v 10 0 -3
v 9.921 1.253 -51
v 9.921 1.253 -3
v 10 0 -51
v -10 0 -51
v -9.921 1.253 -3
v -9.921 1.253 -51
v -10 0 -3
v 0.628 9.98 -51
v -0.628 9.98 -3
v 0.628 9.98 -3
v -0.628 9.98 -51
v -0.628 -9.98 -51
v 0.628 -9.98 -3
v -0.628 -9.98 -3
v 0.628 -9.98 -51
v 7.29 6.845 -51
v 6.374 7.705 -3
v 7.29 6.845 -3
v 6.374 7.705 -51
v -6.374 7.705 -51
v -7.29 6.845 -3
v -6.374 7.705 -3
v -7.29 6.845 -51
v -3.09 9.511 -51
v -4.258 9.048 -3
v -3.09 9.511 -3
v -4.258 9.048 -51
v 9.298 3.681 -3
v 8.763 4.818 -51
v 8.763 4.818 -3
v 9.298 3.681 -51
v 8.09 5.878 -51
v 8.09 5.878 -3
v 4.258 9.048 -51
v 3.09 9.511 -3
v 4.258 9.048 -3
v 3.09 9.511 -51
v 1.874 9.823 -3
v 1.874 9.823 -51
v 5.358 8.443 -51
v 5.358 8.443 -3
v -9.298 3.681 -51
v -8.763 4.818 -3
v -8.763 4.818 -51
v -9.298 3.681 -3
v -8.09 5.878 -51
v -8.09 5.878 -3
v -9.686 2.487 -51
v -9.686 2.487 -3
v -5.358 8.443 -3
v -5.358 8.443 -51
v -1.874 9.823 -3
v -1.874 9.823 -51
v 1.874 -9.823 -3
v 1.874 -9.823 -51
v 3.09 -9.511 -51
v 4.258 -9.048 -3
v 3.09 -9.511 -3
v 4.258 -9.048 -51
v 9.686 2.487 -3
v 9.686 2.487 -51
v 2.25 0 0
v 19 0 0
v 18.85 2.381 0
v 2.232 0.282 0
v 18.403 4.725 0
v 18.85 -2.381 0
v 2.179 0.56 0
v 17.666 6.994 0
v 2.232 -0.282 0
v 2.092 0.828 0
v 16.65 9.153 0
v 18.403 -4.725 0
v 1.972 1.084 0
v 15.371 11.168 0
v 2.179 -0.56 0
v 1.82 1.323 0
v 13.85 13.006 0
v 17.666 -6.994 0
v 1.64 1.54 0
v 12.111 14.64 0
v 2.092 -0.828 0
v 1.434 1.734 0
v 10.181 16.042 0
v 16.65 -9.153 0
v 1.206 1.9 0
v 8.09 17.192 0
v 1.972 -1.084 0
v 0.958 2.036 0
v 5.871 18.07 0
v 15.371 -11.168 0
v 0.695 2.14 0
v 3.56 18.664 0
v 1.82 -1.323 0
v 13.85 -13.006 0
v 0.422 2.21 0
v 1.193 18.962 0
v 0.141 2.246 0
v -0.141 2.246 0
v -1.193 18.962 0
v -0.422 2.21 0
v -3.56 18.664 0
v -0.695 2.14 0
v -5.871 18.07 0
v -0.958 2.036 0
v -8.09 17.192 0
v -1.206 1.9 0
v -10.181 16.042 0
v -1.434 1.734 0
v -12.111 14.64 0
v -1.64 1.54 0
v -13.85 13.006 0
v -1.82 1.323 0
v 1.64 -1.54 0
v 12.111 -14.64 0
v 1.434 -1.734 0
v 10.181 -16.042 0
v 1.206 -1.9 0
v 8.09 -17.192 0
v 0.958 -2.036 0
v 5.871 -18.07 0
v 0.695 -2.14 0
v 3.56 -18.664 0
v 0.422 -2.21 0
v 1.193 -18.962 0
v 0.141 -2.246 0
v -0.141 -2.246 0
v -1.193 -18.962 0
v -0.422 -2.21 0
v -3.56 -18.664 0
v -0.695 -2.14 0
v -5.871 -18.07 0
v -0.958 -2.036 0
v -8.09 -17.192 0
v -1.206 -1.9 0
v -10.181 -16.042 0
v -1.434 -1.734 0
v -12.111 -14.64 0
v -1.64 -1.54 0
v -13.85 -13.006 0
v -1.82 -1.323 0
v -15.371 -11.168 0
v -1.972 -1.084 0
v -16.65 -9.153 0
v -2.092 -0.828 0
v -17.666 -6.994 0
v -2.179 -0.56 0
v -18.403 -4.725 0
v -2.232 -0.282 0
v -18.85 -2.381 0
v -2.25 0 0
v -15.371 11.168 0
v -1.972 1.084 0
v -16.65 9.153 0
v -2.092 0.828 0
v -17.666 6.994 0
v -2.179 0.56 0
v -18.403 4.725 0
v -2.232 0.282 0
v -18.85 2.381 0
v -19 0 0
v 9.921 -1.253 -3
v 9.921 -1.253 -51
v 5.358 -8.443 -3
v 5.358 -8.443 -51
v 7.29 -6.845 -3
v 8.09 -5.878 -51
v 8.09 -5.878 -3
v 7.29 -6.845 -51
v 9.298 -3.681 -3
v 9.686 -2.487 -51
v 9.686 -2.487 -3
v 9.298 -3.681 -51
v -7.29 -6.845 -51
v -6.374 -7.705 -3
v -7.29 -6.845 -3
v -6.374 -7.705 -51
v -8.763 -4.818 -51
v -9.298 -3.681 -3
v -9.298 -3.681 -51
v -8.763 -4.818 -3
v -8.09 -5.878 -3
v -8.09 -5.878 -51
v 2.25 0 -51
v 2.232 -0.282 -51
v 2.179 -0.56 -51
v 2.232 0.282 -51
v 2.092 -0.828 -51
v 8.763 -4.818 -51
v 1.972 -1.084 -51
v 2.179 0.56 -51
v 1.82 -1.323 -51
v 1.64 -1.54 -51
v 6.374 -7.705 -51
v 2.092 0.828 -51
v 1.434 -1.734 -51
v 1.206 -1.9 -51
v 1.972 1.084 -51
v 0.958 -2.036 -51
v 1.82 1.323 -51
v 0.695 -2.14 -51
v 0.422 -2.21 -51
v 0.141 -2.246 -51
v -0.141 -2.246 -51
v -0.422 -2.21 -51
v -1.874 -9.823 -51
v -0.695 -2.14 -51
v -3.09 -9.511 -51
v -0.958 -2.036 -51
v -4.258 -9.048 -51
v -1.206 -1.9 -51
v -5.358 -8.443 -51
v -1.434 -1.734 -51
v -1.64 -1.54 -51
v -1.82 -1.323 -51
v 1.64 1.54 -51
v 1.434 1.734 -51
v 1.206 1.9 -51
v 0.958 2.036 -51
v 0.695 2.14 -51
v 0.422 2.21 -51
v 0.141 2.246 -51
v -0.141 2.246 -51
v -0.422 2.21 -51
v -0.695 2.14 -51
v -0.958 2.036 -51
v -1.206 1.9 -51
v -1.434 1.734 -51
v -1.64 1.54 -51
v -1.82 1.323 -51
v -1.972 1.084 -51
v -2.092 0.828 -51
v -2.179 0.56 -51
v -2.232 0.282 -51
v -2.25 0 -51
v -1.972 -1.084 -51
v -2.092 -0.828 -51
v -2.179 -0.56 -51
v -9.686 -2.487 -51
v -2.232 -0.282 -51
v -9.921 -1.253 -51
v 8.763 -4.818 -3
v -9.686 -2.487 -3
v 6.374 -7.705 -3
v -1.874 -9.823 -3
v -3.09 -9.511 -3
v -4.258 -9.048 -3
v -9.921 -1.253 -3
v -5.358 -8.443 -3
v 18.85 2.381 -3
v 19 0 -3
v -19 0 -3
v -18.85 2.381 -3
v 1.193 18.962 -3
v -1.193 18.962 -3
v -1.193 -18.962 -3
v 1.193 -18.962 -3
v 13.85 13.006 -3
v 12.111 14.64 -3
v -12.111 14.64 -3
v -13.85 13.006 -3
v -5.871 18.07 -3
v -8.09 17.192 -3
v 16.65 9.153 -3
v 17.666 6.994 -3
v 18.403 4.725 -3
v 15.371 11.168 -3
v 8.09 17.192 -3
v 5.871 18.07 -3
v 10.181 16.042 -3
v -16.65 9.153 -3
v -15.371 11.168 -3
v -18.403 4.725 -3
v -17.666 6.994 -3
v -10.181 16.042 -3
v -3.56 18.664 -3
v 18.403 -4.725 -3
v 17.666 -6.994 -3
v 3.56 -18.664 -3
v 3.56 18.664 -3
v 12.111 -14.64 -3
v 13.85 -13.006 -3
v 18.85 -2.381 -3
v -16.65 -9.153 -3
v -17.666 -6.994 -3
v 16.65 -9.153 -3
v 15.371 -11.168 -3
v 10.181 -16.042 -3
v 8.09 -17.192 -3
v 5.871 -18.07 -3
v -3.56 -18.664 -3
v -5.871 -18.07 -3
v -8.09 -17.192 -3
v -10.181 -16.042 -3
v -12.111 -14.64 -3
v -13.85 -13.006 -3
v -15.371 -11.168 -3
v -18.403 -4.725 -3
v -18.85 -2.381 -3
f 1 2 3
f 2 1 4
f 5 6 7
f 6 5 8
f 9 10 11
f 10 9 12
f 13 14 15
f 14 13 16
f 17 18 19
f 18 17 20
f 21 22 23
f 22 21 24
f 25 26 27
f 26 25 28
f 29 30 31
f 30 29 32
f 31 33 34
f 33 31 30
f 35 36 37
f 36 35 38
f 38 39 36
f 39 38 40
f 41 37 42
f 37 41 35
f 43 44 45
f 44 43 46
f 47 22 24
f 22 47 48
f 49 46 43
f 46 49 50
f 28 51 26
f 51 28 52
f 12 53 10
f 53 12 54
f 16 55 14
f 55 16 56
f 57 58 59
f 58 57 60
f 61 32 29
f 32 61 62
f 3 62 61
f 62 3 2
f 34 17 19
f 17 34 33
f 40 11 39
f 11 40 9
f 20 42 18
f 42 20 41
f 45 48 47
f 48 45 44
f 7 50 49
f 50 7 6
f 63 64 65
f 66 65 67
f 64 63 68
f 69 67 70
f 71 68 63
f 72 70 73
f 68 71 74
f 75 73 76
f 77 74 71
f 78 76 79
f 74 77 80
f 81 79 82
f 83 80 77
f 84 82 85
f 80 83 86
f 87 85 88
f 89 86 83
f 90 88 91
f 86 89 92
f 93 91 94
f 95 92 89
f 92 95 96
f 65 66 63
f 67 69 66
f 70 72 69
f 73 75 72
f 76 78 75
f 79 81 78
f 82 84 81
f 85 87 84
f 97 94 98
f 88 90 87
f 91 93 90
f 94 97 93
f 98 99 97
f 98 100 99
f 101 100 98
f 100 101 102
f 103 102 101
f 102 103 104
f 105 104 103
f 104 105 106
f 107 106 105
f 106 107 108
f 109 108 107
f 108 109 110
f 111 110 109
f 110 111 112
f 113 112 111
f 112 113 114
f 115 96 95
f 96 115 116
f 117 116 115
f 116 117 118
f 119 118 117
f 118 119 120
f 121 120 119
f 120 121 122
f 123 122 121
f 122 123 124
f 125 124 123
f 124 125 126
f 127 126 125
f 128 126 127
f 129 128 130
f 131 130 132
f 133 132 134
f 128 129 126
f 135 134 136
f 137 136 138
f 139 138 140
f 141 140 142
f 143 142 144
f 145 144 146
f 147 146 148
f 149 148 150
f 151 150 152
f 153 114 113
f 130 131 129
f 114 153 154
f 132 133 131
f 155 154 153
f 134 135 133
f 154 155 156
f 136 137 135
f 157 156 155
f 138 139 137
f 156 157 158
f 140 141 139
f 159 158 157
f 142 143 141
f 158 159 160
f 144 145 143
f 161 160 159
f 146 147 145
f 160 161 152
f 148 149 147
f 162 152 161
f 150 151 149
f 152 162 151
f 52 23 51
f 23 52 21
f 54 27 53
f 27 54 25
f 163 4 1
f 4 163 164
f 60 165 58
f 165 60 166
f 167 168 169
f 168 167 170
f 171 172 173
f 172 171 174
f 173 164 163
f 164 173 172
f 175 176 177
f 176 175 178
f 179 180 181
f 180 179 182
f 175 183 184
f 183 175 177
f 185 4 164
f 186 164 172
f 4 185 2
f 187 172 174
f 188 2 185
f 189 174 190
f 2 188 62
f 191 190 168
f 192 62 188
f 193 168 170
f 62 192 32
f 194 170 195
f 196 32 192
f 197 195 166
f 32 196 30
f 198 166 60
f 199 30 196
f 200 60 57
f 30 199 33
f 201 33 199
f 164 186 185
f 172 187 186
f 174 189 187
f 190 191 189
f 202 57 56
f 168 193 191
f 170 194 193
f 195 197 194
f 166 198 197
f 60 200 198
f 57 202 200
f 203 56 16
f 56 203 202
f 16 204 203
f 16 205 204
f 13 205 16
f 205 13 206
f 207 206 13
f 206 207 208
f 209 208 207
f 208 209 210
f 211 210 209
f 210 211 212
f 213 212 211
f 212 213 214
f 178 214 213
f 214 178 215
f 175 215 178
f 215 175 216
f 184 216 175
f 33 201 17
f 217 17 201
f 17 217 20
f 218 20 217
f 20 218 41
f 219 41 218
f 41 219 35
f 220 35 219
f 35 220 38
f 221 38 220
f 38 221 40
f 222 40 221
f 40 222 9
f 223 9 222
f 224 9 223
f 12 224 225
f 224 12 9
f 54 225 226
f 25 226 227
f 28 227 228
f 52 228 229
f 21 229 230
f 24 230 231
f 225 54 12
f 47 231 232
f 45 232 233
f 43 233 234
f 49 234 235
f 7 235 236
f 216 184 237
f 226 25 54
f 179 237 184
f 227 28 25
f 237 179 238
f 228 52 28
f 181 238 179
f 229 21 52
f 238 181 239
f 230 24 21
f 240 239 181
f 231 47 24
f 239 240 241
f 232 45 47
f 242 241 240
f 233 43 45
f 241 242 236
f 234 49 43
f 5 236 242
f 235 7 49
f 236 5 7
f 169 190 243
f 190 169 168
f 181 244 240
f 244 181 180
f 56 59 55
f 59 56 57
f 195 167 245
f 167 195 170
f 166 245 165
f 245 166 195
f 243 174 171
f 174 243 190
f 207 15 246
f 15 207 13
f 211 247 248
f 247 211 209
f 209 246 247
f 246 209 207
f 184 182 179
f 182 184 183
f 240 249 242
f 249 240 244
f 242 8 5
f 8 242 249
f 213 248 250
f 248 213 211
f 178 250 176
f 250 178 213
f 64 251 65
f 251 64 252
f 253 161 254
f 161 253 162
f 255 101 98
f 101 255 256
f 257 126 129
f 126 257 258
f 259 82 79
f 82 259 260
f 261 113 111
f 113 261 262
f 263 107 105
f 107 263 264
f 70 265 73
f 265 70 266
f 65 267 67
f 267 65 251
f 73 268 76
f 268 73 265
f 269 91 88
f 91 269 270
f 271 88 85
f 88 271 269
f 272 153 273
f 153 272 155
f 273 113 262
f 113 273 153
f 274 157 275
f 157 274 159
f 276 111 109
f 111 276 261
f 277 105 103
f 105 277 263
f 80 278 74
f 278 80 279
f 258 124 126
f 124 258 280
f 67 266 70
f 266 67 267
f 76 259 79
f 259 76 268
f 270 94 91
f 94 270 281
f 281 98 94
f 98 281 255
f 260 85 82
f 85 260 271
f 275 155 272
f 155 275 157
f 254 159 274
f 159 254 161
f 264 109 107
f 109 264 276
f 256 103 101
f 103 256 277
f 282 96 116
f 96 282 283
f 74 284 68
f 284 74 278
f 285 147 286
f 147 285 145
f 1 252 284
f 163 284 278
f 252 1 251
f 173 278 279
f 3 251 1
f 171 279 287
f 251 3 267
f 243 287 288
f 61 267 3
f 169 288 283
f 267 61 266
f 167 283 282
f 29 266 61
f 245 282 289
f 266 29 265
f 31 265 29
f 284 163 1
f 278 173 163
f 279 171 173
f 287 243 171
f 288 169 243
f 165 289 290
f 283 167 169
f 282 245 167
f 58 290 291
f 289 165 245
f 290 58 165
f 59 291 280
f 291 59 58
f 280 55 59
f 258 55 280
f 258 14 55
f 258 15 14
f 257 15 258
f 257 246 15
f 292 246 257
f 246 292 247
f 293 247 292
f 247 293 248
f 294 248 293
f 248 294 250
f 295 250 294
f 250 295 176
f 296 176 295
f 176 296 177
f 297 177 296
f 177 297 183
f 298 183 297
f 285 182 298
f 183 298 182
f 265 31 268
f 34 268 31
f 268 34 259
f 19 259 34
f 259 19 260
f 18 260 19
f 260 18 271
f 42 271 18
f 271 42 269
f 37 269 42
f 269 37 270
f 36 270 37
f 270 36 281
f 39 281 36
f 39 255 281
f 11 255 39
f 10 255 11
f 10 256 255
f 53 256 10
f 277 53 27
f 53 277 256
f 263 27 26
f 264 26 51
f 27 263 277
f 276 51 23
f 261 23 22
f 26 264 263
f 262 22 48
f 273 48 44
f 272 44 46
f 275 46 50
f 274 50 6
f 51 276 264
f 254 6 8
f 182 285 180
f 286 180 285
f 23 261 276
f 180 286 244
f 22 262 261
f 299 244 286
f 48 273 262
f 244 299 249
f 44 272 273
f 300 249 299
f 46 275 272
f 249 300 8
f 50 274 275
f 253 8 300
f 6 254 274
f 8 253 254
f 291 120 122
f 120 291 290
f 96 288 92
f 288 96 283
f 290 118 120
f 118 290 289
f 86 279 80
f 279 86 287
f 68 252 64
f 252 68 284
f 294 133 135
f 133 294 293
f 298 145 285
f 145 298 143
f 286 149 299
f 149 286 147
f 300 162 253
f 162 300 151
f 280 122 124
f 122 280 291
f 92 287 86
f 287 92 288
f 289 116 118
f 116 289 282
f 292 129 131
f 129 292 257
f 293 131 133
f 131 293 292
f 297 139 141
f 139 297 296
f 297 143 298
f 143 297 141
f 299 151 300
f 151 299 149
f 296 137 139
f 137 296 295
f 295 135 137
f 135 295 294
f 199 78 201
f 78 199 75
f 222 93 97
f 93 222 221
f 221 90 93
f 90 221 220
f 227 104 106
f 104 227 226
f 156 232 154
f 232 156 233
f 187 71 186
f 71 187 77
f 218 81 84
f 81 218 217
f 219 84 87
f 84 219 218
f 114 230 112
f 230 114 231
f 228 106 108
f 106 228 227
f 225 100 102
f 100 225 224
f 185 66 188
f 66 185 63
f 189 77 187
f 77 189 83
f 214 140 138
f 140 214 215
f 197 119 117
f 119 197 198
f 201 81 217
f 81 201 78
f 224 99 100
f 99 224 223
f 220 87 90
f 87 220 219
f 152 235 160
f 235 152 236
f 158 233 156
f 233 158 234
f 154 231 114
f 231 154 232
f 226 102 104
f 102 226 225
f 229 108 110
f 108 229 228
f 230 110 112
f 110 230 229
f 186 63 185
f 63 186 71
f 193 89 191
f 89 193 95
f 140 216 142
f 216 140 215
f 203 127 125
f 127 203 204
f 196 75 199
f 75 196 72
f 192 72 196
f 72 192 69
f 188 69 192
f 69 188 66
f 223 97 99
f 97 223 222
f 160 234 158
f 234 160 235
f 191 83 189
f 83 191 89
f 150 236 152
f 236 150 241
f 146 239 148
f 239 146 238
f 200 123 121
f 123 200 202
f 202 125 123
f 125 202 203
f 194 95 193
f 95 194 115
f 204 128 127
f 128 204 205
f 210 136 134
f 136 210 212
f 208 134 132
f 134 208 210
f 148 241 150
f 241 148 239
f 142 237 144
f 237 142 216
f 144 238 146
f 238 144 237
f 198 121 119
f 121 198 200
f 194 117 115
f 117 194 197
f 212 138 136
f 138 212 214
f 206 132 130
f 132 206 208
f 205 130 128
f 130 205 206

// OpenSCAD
$fn = 50;


difference() {
	union() {
		translate(v = [0, 0, -51.0000000000]) {
			cylinder(h = 51, r = 10.0000000000);
		}
		translate(v = [0, 0, -3.0000000000]) {
			cylinder(h = 3, r = 19.0000000000);
		}
	}
	union() {
		#translate(v = [0, 0, -51]) {
			cylinder(h = 51, r = 2.2500000000);
		}
	}
}
